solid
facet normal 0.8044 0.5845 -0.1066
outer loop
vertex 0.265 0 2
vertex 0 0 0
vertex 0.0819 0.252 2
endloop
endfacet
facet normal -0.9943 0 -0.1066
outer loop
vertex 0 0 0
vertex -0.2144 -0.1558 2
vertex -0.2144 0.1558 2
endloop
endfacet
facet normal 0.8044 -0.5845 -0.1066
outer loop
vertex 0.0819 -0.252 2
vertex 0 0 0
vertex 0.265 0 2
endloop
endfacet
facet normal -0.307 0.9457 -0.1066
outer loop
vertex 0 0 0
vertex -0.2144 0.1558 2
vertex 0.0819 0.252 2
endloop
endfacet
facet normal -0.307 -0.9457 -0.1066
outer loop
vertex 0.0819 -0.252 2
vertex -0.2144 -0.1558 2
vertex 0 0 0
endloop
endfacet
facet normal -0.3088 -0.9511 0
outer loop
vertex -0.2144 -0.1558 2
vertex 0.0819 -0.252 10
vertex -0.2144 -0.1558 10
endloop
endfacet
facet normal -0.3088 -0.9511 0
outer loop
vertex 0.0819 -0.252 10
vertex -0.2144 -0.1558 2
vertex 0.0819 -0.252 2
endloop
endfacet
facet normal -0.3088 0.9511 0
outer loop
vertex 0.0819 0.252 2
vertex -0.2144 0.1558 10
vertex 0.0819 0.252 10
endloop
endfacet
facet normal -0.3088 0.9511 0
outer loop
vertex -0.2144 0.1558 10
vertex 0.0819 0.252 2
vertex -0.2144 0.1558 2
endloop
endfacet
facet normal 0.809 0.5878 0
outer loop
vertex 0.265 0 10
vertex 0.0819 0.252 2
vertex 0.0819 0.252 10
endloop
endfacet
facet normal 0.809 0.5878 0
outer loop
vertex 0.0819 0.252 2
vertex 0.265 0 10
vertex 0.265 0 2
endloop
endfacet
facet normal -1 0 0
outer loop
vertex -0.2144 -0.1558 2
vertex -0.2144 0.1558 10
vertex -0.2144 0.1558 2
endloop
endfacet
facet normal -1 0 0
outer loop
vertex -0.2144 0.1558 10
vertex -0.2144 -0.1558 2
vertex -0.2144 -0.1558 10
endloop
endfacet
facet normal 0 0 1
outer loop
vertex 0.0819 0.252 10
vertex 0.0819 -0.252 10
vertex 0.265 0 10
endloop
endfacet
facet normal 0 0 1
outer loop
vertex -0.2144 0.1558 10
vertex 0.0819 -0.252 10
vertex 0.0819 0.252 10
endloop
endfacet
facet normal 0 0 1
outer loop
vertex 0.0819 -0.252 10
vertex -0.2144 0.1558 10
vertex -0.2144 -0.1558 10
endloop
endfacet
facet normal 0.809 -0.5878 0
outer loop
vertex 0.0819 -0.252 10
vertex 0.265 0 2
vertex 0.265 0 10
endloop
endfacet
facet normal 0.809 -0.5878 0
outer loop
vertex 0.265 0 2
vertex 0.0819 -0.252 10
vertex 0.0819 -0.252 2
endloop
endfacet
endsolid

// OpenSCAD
module 050_PRP2541S() {
   color("Gold")
   //tip part 1
   translate([0,0,0])cylinder(h=2,d1=0,d2=0.53,center=false);
   //tip part 2
   //shaft 
   color("Gold")
   translate([0,0,2])cylinder(h=8,d=0.53,center=false);
}
050_PRP2541S();
